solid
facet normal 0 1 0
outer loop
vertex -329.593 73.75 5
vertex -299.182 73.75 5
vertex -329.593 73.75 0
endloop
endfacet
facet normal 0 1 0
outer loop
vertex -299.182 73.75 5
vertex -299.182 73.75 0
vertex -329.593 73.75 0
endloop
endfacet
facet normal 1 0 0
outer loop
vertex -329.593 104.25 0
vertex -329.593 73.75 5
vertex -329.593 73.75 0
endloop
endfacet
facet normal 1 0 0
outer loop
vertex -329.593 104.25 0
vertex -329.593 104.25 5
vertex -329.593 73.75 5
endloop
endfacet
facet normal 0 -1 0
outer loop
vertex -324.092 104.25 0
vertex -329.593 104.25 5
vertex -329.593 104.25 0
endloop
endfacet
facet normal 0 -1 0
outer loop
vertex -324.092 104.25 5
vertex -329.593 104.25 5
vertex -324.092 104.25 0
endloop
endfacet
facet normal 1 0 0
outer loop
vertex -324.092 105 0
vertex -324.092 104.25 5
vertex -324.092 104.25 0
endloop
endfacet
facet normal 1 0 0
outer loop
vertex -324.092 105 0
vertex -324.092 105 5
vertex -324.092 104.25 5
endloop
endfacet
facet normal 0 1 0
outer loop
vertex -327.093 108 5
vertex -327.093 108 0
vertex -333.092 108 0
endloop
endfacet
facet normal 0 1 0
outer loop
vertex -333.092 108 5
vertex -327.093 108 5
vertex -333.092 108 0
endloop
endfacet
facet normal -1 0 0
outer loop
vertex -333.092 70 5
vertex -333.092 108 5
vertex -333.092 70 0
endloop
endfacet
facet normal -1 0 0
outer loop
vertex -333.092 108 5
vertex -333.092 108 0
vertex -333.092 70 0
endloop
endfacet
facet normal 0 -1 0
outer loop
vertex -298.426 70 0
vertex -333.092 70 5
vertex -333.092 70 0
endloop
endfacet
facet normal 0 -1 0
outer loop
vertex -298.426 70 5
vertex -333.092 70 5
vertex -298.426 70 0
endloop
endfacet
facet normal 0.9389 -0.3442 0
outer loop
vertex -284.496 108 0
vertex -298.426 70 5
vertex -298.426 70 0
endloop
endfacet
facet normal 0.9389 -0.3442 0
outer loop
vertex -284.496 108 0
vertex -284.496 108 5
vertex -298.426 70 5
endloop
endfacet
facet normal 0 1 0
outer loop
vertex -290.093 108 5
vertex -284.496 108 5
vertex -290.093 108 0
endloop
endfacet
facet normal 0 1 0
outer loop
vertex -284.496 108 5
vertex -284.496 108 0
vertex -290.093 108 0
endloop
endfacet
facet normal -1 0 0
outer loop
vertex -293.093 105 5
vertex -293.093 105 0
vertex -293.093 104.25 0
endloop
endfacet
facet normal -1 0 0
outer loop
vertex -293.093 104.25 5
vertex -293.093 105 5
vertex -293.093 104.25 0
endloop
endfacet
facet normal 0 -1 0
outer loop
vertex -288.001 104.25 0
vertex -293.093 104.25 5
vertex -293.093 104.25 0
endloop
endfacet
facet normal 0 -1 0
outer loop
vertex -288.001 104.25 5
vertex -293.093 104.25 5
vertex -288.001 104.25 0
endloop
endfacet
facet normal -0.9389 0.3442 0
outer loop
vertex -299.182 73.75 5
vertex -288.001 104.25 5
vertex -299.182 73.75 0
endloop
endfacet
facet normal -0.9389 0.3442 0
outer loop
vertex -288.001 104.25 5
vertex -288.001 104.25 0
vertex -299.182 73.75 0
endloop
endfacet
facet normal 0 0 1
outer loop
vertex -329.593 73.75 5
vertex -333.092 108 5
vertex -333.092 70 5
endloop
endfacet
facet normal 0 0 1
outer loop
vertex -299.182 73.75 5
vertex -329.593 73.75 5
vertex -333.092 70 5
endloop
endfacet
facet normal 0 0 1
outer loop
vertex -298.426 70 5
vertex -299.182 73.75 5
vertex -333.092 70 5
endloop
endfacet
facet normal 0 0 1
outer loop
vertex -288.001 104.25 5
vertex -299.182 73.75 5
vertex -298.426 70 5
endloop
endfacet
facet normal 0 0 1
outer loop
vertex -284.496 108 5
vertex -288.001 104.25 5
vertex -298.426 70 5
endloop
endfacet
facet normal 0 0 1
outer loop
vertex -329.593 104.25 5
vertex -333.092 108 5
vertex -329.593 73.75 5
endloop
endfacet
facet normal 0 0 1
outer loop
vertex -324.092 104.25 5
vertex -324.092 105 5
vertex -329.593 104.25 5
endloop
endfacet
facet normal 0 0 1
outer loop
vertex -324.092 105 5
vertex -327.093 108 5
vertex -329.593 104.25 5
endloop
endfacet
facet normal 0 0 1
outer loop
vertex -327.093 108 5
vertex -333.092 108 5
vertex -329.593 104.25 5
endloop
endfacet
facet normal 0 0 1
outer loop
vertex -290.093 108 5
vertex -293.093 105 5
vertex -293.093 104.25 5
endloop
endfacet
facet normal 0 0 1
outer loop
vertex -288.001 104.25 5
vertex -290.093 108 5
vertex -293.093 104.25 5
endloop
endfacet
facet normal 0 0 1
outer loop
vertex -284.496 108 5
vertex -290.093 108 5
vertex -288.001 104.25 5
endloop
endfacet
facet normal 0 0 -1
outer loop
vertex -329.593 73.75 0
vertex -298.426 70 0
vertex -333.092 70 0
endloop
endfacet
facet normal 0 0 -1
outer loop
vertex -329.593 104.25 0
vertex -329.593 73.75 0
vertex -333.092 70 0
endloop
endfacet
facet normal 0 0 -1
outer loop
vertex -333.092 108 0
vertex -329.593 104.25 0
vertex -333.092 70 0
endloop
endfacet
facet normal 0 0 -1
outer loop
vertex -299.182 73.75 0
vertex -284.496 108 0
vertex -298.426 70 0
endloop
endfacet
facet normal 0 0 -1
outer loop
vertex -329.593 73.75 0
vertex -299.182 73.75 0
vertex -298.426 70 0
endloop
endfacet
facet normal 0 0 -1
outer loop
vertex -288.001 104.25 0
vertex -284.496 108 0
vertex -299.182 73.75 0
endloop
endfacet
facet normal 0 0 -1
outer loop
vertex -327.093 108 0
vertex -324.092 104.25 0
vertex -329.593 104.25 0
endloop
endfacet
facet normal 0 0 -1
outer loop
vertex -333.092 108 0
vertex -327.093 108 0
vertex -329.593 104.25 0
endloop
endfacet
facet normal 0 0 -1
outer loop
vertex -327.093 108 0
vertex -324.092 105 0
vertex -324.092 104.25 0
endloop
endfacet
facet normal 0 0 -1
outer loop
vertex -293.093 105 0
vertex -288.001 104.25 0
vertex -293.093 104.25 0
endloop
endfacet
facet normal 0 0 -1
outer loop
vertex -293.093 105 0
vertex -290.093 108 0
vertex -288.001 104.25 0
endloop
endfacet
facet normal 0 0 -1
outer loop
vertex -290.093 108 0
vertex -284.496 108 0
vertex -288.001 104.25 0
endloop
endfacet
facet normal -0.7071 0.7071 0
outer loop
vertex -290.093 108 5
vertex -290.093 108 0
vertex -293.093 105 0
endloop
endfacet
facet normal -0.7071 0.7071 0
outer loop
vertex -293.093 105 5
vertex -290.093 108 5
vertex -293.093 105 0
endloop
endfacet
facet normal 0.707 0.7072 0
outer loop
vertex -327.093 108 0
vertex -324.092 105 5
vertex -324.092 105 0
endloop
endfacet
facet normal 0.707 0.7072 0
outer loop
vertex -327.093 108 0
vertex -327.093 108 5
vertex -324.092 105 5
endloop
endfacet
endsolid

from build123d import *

# Parameters (mm, degrees)
BOSS_EXTRUDE3_DEPTH = 5
CHAMFER3_SIZE       = 3


with BuildPart() as part:
    # Sketch7 → Boss-Extrude3 (new body)
    with BuildSketch(Plane.XY):
        Polygon((-298.426339507, 70), (-284.496051046, 108), (-293.092548077, 108), (-293.092548077, 104.25), (-288.000901442, 104.25), (-299.181790865, 73.75), (-329.592548077, 73.75), (-329.592548077, 104.25), (-324.092548077, 104.25), (-324.092548077, 108), (-333.092548077, 108), (-333.092548077, 70), align=None)
    extrude(amount=BOSS_EXTRUDE3_DEPTH)

    # Chamfer3
    chamfer3_edges = [part.edges().sort_by_distance(p)[0] for p in [
        (-293.092548077, 108, 2.5),
        (-324.092548077, 108, 2.5),
    ]]
    chamfer(chamfer3_edges, length=CHAMFER3_SIZE)


solid = part.part
